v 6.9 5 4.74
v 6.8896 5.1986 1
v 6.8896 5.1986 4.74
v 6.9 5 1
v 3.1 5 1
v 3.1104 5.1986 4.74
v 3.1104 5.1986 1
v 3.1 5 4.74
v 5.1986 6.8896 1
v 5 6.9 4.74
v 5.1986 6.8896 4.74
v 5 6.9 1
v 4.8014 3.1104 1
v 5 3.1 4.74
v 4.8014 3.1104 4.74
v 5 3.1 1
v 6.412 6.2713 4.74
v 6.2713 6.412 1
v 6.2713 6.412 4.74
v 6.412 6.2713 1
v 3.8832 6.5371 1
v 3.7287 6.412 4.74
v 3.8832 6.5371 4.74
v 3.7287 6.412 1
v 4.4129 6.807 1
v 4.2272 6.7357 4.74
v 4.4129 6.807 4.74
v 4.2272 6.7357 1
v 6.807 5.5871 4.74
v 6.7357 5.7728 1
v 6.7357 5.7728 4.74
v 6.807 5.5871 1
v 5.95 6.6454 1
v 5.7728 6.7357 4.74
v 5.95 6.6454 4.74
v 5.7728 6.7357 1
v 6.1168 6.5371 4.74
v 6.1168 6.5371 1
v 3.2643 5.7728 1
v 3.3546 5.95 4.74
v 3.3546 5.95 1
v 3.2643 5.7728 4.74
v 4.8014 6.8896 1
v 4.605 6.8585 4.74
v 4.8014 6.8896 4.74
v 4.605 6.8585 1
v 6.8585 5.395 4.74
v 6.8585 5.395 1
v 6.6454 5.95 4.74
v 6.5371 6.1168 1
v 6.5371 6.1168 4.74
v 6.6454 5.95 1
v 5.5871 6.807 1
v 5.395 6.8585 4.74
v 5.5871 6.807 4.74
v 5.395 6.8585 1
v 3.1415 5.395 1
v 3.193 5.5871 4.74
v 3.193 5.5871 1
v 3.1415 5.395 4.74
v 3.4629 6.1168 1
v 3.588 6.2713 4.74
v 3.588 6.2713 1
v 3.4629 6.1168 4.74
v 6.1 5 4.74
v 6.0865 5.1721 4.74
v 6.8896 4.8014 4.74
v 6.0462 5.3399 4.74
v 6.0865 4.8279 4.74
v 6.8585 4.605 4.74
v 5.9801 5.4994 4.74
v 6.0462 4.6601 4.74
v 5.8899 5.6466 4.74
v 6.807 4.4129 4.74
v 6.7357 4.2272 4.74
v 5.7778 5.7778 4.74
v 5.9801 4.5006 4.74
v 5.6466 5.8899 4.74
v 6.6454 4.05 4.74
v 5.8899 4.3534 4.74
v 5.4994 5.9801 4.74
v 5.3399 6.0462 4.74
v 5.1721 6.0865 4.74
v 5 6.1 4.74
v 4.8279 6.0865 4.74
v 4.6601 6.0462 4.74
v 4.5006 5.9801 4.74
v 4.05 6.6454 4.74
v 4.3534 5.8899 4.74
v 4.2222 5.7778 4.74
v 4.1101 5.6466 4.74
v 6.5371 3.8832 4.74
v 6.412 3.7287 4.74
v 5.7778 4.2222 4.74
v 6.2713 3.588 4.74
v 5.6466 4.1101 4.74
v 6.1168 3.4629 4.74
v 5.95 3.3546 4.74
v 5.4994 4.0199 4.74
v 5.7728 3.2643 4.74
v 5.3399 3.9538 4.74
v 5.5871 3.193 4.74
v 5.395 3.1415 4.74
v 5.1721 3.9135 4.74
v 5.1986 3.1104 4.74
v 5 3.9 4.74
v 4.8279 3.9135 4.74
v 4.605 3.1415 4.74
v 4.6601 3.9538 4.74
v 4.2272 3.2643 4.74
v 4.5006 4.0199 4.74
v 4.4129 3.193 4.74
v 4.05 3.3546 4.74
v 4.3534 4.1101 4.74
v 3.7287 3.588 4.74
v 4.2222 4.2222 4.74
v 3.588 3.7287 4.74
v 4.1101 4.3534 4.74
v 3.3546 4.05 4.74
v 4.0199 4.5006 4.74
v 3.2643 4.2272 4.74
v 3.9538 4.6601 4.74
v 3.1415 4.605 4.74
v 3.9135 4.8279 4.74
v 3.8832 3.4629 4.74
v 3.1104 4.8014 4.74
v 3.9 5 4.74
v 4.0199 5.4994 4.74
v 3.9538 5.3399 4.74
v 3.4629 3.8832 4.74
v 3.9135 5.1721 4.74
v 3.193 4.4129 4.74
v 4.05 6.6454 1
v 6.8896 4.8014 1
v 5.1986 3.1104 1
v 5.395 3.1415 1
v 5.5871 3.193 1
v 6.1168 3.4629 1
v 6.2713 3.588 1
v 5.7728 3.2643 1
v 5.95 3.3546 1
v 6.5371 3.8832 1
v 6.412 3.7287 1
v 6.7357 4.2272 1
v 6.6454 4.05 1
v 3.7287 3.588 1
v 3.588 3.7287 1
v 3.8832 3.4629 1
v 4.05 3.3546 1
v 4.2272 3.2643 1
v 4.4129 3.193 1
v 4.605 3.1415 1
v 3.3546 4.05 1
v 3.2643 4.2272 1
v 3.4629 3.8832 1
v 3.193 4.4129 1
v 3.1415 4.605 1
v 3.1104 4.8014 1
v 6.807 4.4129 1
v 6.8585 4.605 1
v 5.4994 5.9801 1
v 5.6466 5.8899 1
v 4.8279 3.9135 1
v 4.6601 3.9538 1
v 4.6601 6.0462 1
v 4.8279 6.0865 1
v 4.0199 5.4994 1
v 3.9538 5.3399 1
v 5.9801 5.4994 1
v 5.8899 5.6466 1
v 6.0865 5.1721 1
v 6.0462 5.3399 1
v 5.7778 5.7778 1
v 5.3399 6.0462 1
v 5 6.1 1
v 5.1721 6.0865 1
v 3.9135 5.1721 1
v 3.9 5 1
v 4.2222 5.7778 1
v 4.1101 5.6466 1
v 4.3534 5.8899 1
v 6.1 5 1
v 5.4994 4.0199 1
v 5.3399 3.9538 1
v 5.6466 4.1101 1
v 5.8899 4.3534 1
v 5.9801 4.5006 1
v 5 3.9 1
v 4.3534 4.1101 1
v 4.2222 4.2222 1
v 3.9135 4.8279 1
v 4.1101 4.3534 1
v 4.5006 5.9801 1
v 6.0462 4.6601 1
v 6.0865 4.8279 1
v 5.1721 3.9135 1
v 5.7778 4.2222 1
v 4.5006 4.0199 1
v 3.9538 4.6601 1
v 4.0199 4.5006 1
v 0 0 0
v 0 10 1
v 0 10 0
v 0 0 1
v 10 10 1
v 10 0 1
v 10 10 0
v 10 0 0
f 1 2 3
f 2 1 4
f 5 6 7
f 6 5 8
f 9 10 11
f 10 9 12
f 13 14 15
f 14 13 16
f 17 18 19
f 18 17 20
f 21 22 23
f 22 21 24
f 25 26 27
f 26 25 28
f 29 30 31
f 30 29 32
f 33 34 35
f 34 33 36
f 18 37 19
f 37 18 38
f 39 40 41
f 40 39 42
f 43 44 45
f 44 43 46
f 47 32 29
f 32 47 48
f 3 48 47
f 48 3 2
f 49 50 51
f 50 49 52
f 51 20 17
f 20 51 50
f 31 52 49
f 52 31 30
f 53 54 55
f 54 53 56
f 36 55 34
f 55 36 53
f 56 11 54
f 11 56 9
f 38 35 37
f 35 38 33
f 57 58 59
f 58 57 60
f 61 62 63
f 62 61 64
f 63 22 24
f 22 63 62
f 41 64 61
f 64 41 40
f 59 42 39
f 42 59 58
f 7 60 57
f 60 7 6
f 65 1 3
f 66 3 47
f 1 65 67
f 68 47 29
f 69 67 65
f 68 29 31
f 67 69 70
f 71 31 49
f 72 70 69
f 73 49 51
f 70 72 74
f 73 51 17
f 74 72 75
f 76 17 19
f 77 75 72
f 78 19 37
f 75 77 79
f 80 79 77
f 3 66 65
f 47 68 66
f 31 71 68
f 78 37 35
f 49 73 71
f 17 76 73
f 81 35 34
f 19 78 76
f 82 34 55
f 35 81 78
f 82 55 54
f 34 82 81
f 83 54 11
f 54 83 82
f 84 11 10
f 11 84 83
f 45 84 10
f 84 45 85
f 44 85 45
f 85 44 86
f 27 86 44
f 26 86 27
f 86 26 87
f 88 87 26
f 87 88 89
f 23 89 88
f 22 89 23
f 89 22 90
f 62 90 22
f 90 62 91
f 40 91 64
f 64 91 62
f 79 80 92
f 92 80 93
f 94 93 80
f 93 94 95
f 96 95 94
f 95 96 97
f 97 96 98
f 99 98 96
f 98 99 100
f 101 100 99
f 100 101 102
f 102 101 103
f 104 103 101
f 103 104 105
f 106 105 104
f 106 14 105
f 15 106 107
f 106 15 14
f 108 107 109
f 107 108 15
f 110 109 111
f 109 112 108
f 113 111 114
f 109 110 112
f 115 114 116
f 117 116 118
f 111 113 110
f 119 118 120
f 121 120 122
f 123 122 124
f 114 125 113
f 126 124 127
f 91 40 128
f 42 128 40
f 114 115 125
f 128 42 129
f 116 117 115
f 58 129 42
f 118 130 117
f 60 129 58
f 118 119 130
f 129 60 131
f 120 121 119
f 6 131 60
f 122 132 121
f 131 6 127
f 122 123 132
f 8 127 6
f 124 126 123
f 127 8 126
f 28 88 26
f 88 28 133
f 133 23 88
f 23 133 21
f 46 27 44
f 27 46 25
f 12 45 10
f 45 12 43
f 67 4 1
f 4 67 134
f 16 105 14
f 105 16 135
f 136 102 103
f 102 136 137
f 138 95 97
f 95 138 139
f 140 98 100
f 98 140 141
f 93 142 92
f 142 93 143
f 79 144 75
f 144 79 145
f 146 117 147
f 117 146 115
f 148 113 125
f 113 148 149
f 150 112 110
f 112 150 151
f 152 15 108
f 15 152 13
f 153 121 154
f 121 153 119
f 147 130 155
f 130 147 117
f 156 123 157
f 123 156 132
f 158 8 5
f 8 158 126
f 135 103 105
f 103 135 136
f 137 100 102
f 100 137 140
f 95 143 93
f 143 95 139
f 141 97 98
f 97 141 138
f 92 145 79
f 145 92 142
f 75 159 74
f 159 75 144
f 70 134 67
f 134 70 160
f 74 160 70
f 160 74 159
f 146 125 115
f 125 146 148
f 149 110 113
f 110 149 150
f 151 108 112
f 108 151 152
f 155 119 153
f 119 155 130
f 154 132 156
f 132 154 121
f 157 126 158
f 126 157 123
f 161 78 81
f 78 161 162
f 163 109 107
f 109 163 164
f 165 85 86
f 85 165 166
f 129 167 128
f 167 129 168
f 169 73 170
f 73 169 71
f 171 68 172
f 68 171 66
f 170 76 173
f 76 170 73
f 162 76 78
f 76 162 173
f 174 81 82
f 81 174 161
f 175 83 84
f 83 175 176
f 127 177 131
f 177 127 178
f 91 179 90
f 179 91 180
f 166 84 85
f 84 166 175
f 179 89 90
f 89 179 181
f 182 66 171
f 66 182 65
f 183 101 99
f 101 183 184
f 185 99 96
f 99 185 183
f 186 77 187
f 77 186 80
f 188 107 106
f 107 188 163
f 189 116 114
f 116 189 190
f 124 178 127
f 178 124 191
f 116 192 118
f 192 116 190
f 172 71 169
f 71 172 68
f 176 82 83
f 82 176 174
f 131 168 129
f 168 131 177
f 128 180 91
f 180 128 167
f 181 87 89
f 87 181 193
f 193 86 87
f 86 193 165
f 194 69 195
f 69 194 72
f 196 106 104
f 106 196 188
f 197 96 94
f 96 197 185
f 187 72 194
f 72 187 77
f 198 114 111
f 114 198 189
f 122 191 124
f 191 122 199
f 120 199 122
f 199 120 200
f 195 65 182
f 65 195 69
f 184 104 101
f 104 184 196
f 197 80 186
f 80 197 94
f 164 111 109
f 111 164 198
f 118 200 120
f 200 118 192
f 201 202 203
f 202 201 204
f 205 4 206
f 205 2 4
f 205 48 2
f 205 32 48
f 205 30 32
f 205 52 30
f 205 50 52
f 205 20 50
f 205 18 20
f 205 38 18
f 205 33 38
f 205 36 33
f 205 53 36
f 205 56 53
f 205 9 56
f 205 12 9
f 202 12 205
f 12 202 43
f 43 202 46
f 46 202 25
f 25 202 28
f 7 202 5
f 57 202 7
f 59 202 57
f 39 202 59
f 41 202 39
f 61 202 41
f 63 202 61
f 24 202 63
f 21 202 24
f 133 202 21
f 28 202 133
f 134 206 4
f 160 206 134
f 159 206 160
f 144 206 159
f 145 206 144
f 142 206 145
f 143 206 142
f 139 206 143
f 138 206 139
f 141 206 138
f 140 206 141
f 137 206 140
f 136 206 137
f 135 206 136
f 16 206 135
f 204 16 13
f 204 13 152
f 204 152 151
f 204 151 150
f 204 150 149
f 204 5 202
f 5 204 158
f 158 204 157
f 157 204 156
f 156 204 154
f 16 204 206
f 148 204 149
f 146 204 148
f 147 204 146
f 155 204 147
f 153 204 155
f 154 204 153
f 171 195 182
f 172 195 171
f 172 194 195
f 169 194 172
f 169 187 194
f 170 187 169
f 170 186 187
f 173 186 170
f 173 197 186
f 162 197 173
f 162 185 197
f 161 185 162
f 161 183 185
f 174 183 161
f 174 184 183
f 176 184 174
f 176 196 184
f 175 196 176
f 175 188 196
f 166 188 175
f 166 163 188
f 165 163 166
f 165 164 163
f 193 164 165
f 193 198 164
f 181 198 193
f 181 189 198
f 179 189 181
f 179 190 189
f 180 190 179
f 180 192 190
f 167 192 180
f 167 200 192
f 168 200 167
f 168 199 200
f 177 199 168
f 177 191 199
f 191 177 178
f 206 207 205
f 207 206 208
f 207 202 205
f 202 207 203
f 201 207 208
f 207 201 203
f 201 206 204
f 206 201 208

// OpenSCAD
/* [Utility] */
// overlap to indicate joined objects
overlap = 0.01;

/* [Servo Board] */
//https://learn.adafruit.com/adafruit-feather/feather-specification?view=all#feather-and-wing-sizes-2861831
// servo board w/power and right-angle headers
featherwing_width = 22.8;
// length of servo controller board
featherwing_length = 50.8;
hole_to_hole_narrow = 17.7;
hole_to_hole_wide = 45.7;

/* [Holes] */
cylinder_width = 3.8; // minumum, can be larger
cylinder_height = 3.75; // length of screw I have handy
// size of hole to accept M2*5 screw
m_2_5_width = 2.2;

/* [cube] */
cube_z = 1.0;


union() {
    translate([5, 5, cube_z - overlap]) 
      difference() {
        cylinder(r = cylinder_width / 2, h = cylinder_height, $fn=60);
        cylinder(r = m_2_5_width / 2, h = cylinder_height + overlap, $fn=40);  
      }
    cube([10, 10, cube_z]);
}
